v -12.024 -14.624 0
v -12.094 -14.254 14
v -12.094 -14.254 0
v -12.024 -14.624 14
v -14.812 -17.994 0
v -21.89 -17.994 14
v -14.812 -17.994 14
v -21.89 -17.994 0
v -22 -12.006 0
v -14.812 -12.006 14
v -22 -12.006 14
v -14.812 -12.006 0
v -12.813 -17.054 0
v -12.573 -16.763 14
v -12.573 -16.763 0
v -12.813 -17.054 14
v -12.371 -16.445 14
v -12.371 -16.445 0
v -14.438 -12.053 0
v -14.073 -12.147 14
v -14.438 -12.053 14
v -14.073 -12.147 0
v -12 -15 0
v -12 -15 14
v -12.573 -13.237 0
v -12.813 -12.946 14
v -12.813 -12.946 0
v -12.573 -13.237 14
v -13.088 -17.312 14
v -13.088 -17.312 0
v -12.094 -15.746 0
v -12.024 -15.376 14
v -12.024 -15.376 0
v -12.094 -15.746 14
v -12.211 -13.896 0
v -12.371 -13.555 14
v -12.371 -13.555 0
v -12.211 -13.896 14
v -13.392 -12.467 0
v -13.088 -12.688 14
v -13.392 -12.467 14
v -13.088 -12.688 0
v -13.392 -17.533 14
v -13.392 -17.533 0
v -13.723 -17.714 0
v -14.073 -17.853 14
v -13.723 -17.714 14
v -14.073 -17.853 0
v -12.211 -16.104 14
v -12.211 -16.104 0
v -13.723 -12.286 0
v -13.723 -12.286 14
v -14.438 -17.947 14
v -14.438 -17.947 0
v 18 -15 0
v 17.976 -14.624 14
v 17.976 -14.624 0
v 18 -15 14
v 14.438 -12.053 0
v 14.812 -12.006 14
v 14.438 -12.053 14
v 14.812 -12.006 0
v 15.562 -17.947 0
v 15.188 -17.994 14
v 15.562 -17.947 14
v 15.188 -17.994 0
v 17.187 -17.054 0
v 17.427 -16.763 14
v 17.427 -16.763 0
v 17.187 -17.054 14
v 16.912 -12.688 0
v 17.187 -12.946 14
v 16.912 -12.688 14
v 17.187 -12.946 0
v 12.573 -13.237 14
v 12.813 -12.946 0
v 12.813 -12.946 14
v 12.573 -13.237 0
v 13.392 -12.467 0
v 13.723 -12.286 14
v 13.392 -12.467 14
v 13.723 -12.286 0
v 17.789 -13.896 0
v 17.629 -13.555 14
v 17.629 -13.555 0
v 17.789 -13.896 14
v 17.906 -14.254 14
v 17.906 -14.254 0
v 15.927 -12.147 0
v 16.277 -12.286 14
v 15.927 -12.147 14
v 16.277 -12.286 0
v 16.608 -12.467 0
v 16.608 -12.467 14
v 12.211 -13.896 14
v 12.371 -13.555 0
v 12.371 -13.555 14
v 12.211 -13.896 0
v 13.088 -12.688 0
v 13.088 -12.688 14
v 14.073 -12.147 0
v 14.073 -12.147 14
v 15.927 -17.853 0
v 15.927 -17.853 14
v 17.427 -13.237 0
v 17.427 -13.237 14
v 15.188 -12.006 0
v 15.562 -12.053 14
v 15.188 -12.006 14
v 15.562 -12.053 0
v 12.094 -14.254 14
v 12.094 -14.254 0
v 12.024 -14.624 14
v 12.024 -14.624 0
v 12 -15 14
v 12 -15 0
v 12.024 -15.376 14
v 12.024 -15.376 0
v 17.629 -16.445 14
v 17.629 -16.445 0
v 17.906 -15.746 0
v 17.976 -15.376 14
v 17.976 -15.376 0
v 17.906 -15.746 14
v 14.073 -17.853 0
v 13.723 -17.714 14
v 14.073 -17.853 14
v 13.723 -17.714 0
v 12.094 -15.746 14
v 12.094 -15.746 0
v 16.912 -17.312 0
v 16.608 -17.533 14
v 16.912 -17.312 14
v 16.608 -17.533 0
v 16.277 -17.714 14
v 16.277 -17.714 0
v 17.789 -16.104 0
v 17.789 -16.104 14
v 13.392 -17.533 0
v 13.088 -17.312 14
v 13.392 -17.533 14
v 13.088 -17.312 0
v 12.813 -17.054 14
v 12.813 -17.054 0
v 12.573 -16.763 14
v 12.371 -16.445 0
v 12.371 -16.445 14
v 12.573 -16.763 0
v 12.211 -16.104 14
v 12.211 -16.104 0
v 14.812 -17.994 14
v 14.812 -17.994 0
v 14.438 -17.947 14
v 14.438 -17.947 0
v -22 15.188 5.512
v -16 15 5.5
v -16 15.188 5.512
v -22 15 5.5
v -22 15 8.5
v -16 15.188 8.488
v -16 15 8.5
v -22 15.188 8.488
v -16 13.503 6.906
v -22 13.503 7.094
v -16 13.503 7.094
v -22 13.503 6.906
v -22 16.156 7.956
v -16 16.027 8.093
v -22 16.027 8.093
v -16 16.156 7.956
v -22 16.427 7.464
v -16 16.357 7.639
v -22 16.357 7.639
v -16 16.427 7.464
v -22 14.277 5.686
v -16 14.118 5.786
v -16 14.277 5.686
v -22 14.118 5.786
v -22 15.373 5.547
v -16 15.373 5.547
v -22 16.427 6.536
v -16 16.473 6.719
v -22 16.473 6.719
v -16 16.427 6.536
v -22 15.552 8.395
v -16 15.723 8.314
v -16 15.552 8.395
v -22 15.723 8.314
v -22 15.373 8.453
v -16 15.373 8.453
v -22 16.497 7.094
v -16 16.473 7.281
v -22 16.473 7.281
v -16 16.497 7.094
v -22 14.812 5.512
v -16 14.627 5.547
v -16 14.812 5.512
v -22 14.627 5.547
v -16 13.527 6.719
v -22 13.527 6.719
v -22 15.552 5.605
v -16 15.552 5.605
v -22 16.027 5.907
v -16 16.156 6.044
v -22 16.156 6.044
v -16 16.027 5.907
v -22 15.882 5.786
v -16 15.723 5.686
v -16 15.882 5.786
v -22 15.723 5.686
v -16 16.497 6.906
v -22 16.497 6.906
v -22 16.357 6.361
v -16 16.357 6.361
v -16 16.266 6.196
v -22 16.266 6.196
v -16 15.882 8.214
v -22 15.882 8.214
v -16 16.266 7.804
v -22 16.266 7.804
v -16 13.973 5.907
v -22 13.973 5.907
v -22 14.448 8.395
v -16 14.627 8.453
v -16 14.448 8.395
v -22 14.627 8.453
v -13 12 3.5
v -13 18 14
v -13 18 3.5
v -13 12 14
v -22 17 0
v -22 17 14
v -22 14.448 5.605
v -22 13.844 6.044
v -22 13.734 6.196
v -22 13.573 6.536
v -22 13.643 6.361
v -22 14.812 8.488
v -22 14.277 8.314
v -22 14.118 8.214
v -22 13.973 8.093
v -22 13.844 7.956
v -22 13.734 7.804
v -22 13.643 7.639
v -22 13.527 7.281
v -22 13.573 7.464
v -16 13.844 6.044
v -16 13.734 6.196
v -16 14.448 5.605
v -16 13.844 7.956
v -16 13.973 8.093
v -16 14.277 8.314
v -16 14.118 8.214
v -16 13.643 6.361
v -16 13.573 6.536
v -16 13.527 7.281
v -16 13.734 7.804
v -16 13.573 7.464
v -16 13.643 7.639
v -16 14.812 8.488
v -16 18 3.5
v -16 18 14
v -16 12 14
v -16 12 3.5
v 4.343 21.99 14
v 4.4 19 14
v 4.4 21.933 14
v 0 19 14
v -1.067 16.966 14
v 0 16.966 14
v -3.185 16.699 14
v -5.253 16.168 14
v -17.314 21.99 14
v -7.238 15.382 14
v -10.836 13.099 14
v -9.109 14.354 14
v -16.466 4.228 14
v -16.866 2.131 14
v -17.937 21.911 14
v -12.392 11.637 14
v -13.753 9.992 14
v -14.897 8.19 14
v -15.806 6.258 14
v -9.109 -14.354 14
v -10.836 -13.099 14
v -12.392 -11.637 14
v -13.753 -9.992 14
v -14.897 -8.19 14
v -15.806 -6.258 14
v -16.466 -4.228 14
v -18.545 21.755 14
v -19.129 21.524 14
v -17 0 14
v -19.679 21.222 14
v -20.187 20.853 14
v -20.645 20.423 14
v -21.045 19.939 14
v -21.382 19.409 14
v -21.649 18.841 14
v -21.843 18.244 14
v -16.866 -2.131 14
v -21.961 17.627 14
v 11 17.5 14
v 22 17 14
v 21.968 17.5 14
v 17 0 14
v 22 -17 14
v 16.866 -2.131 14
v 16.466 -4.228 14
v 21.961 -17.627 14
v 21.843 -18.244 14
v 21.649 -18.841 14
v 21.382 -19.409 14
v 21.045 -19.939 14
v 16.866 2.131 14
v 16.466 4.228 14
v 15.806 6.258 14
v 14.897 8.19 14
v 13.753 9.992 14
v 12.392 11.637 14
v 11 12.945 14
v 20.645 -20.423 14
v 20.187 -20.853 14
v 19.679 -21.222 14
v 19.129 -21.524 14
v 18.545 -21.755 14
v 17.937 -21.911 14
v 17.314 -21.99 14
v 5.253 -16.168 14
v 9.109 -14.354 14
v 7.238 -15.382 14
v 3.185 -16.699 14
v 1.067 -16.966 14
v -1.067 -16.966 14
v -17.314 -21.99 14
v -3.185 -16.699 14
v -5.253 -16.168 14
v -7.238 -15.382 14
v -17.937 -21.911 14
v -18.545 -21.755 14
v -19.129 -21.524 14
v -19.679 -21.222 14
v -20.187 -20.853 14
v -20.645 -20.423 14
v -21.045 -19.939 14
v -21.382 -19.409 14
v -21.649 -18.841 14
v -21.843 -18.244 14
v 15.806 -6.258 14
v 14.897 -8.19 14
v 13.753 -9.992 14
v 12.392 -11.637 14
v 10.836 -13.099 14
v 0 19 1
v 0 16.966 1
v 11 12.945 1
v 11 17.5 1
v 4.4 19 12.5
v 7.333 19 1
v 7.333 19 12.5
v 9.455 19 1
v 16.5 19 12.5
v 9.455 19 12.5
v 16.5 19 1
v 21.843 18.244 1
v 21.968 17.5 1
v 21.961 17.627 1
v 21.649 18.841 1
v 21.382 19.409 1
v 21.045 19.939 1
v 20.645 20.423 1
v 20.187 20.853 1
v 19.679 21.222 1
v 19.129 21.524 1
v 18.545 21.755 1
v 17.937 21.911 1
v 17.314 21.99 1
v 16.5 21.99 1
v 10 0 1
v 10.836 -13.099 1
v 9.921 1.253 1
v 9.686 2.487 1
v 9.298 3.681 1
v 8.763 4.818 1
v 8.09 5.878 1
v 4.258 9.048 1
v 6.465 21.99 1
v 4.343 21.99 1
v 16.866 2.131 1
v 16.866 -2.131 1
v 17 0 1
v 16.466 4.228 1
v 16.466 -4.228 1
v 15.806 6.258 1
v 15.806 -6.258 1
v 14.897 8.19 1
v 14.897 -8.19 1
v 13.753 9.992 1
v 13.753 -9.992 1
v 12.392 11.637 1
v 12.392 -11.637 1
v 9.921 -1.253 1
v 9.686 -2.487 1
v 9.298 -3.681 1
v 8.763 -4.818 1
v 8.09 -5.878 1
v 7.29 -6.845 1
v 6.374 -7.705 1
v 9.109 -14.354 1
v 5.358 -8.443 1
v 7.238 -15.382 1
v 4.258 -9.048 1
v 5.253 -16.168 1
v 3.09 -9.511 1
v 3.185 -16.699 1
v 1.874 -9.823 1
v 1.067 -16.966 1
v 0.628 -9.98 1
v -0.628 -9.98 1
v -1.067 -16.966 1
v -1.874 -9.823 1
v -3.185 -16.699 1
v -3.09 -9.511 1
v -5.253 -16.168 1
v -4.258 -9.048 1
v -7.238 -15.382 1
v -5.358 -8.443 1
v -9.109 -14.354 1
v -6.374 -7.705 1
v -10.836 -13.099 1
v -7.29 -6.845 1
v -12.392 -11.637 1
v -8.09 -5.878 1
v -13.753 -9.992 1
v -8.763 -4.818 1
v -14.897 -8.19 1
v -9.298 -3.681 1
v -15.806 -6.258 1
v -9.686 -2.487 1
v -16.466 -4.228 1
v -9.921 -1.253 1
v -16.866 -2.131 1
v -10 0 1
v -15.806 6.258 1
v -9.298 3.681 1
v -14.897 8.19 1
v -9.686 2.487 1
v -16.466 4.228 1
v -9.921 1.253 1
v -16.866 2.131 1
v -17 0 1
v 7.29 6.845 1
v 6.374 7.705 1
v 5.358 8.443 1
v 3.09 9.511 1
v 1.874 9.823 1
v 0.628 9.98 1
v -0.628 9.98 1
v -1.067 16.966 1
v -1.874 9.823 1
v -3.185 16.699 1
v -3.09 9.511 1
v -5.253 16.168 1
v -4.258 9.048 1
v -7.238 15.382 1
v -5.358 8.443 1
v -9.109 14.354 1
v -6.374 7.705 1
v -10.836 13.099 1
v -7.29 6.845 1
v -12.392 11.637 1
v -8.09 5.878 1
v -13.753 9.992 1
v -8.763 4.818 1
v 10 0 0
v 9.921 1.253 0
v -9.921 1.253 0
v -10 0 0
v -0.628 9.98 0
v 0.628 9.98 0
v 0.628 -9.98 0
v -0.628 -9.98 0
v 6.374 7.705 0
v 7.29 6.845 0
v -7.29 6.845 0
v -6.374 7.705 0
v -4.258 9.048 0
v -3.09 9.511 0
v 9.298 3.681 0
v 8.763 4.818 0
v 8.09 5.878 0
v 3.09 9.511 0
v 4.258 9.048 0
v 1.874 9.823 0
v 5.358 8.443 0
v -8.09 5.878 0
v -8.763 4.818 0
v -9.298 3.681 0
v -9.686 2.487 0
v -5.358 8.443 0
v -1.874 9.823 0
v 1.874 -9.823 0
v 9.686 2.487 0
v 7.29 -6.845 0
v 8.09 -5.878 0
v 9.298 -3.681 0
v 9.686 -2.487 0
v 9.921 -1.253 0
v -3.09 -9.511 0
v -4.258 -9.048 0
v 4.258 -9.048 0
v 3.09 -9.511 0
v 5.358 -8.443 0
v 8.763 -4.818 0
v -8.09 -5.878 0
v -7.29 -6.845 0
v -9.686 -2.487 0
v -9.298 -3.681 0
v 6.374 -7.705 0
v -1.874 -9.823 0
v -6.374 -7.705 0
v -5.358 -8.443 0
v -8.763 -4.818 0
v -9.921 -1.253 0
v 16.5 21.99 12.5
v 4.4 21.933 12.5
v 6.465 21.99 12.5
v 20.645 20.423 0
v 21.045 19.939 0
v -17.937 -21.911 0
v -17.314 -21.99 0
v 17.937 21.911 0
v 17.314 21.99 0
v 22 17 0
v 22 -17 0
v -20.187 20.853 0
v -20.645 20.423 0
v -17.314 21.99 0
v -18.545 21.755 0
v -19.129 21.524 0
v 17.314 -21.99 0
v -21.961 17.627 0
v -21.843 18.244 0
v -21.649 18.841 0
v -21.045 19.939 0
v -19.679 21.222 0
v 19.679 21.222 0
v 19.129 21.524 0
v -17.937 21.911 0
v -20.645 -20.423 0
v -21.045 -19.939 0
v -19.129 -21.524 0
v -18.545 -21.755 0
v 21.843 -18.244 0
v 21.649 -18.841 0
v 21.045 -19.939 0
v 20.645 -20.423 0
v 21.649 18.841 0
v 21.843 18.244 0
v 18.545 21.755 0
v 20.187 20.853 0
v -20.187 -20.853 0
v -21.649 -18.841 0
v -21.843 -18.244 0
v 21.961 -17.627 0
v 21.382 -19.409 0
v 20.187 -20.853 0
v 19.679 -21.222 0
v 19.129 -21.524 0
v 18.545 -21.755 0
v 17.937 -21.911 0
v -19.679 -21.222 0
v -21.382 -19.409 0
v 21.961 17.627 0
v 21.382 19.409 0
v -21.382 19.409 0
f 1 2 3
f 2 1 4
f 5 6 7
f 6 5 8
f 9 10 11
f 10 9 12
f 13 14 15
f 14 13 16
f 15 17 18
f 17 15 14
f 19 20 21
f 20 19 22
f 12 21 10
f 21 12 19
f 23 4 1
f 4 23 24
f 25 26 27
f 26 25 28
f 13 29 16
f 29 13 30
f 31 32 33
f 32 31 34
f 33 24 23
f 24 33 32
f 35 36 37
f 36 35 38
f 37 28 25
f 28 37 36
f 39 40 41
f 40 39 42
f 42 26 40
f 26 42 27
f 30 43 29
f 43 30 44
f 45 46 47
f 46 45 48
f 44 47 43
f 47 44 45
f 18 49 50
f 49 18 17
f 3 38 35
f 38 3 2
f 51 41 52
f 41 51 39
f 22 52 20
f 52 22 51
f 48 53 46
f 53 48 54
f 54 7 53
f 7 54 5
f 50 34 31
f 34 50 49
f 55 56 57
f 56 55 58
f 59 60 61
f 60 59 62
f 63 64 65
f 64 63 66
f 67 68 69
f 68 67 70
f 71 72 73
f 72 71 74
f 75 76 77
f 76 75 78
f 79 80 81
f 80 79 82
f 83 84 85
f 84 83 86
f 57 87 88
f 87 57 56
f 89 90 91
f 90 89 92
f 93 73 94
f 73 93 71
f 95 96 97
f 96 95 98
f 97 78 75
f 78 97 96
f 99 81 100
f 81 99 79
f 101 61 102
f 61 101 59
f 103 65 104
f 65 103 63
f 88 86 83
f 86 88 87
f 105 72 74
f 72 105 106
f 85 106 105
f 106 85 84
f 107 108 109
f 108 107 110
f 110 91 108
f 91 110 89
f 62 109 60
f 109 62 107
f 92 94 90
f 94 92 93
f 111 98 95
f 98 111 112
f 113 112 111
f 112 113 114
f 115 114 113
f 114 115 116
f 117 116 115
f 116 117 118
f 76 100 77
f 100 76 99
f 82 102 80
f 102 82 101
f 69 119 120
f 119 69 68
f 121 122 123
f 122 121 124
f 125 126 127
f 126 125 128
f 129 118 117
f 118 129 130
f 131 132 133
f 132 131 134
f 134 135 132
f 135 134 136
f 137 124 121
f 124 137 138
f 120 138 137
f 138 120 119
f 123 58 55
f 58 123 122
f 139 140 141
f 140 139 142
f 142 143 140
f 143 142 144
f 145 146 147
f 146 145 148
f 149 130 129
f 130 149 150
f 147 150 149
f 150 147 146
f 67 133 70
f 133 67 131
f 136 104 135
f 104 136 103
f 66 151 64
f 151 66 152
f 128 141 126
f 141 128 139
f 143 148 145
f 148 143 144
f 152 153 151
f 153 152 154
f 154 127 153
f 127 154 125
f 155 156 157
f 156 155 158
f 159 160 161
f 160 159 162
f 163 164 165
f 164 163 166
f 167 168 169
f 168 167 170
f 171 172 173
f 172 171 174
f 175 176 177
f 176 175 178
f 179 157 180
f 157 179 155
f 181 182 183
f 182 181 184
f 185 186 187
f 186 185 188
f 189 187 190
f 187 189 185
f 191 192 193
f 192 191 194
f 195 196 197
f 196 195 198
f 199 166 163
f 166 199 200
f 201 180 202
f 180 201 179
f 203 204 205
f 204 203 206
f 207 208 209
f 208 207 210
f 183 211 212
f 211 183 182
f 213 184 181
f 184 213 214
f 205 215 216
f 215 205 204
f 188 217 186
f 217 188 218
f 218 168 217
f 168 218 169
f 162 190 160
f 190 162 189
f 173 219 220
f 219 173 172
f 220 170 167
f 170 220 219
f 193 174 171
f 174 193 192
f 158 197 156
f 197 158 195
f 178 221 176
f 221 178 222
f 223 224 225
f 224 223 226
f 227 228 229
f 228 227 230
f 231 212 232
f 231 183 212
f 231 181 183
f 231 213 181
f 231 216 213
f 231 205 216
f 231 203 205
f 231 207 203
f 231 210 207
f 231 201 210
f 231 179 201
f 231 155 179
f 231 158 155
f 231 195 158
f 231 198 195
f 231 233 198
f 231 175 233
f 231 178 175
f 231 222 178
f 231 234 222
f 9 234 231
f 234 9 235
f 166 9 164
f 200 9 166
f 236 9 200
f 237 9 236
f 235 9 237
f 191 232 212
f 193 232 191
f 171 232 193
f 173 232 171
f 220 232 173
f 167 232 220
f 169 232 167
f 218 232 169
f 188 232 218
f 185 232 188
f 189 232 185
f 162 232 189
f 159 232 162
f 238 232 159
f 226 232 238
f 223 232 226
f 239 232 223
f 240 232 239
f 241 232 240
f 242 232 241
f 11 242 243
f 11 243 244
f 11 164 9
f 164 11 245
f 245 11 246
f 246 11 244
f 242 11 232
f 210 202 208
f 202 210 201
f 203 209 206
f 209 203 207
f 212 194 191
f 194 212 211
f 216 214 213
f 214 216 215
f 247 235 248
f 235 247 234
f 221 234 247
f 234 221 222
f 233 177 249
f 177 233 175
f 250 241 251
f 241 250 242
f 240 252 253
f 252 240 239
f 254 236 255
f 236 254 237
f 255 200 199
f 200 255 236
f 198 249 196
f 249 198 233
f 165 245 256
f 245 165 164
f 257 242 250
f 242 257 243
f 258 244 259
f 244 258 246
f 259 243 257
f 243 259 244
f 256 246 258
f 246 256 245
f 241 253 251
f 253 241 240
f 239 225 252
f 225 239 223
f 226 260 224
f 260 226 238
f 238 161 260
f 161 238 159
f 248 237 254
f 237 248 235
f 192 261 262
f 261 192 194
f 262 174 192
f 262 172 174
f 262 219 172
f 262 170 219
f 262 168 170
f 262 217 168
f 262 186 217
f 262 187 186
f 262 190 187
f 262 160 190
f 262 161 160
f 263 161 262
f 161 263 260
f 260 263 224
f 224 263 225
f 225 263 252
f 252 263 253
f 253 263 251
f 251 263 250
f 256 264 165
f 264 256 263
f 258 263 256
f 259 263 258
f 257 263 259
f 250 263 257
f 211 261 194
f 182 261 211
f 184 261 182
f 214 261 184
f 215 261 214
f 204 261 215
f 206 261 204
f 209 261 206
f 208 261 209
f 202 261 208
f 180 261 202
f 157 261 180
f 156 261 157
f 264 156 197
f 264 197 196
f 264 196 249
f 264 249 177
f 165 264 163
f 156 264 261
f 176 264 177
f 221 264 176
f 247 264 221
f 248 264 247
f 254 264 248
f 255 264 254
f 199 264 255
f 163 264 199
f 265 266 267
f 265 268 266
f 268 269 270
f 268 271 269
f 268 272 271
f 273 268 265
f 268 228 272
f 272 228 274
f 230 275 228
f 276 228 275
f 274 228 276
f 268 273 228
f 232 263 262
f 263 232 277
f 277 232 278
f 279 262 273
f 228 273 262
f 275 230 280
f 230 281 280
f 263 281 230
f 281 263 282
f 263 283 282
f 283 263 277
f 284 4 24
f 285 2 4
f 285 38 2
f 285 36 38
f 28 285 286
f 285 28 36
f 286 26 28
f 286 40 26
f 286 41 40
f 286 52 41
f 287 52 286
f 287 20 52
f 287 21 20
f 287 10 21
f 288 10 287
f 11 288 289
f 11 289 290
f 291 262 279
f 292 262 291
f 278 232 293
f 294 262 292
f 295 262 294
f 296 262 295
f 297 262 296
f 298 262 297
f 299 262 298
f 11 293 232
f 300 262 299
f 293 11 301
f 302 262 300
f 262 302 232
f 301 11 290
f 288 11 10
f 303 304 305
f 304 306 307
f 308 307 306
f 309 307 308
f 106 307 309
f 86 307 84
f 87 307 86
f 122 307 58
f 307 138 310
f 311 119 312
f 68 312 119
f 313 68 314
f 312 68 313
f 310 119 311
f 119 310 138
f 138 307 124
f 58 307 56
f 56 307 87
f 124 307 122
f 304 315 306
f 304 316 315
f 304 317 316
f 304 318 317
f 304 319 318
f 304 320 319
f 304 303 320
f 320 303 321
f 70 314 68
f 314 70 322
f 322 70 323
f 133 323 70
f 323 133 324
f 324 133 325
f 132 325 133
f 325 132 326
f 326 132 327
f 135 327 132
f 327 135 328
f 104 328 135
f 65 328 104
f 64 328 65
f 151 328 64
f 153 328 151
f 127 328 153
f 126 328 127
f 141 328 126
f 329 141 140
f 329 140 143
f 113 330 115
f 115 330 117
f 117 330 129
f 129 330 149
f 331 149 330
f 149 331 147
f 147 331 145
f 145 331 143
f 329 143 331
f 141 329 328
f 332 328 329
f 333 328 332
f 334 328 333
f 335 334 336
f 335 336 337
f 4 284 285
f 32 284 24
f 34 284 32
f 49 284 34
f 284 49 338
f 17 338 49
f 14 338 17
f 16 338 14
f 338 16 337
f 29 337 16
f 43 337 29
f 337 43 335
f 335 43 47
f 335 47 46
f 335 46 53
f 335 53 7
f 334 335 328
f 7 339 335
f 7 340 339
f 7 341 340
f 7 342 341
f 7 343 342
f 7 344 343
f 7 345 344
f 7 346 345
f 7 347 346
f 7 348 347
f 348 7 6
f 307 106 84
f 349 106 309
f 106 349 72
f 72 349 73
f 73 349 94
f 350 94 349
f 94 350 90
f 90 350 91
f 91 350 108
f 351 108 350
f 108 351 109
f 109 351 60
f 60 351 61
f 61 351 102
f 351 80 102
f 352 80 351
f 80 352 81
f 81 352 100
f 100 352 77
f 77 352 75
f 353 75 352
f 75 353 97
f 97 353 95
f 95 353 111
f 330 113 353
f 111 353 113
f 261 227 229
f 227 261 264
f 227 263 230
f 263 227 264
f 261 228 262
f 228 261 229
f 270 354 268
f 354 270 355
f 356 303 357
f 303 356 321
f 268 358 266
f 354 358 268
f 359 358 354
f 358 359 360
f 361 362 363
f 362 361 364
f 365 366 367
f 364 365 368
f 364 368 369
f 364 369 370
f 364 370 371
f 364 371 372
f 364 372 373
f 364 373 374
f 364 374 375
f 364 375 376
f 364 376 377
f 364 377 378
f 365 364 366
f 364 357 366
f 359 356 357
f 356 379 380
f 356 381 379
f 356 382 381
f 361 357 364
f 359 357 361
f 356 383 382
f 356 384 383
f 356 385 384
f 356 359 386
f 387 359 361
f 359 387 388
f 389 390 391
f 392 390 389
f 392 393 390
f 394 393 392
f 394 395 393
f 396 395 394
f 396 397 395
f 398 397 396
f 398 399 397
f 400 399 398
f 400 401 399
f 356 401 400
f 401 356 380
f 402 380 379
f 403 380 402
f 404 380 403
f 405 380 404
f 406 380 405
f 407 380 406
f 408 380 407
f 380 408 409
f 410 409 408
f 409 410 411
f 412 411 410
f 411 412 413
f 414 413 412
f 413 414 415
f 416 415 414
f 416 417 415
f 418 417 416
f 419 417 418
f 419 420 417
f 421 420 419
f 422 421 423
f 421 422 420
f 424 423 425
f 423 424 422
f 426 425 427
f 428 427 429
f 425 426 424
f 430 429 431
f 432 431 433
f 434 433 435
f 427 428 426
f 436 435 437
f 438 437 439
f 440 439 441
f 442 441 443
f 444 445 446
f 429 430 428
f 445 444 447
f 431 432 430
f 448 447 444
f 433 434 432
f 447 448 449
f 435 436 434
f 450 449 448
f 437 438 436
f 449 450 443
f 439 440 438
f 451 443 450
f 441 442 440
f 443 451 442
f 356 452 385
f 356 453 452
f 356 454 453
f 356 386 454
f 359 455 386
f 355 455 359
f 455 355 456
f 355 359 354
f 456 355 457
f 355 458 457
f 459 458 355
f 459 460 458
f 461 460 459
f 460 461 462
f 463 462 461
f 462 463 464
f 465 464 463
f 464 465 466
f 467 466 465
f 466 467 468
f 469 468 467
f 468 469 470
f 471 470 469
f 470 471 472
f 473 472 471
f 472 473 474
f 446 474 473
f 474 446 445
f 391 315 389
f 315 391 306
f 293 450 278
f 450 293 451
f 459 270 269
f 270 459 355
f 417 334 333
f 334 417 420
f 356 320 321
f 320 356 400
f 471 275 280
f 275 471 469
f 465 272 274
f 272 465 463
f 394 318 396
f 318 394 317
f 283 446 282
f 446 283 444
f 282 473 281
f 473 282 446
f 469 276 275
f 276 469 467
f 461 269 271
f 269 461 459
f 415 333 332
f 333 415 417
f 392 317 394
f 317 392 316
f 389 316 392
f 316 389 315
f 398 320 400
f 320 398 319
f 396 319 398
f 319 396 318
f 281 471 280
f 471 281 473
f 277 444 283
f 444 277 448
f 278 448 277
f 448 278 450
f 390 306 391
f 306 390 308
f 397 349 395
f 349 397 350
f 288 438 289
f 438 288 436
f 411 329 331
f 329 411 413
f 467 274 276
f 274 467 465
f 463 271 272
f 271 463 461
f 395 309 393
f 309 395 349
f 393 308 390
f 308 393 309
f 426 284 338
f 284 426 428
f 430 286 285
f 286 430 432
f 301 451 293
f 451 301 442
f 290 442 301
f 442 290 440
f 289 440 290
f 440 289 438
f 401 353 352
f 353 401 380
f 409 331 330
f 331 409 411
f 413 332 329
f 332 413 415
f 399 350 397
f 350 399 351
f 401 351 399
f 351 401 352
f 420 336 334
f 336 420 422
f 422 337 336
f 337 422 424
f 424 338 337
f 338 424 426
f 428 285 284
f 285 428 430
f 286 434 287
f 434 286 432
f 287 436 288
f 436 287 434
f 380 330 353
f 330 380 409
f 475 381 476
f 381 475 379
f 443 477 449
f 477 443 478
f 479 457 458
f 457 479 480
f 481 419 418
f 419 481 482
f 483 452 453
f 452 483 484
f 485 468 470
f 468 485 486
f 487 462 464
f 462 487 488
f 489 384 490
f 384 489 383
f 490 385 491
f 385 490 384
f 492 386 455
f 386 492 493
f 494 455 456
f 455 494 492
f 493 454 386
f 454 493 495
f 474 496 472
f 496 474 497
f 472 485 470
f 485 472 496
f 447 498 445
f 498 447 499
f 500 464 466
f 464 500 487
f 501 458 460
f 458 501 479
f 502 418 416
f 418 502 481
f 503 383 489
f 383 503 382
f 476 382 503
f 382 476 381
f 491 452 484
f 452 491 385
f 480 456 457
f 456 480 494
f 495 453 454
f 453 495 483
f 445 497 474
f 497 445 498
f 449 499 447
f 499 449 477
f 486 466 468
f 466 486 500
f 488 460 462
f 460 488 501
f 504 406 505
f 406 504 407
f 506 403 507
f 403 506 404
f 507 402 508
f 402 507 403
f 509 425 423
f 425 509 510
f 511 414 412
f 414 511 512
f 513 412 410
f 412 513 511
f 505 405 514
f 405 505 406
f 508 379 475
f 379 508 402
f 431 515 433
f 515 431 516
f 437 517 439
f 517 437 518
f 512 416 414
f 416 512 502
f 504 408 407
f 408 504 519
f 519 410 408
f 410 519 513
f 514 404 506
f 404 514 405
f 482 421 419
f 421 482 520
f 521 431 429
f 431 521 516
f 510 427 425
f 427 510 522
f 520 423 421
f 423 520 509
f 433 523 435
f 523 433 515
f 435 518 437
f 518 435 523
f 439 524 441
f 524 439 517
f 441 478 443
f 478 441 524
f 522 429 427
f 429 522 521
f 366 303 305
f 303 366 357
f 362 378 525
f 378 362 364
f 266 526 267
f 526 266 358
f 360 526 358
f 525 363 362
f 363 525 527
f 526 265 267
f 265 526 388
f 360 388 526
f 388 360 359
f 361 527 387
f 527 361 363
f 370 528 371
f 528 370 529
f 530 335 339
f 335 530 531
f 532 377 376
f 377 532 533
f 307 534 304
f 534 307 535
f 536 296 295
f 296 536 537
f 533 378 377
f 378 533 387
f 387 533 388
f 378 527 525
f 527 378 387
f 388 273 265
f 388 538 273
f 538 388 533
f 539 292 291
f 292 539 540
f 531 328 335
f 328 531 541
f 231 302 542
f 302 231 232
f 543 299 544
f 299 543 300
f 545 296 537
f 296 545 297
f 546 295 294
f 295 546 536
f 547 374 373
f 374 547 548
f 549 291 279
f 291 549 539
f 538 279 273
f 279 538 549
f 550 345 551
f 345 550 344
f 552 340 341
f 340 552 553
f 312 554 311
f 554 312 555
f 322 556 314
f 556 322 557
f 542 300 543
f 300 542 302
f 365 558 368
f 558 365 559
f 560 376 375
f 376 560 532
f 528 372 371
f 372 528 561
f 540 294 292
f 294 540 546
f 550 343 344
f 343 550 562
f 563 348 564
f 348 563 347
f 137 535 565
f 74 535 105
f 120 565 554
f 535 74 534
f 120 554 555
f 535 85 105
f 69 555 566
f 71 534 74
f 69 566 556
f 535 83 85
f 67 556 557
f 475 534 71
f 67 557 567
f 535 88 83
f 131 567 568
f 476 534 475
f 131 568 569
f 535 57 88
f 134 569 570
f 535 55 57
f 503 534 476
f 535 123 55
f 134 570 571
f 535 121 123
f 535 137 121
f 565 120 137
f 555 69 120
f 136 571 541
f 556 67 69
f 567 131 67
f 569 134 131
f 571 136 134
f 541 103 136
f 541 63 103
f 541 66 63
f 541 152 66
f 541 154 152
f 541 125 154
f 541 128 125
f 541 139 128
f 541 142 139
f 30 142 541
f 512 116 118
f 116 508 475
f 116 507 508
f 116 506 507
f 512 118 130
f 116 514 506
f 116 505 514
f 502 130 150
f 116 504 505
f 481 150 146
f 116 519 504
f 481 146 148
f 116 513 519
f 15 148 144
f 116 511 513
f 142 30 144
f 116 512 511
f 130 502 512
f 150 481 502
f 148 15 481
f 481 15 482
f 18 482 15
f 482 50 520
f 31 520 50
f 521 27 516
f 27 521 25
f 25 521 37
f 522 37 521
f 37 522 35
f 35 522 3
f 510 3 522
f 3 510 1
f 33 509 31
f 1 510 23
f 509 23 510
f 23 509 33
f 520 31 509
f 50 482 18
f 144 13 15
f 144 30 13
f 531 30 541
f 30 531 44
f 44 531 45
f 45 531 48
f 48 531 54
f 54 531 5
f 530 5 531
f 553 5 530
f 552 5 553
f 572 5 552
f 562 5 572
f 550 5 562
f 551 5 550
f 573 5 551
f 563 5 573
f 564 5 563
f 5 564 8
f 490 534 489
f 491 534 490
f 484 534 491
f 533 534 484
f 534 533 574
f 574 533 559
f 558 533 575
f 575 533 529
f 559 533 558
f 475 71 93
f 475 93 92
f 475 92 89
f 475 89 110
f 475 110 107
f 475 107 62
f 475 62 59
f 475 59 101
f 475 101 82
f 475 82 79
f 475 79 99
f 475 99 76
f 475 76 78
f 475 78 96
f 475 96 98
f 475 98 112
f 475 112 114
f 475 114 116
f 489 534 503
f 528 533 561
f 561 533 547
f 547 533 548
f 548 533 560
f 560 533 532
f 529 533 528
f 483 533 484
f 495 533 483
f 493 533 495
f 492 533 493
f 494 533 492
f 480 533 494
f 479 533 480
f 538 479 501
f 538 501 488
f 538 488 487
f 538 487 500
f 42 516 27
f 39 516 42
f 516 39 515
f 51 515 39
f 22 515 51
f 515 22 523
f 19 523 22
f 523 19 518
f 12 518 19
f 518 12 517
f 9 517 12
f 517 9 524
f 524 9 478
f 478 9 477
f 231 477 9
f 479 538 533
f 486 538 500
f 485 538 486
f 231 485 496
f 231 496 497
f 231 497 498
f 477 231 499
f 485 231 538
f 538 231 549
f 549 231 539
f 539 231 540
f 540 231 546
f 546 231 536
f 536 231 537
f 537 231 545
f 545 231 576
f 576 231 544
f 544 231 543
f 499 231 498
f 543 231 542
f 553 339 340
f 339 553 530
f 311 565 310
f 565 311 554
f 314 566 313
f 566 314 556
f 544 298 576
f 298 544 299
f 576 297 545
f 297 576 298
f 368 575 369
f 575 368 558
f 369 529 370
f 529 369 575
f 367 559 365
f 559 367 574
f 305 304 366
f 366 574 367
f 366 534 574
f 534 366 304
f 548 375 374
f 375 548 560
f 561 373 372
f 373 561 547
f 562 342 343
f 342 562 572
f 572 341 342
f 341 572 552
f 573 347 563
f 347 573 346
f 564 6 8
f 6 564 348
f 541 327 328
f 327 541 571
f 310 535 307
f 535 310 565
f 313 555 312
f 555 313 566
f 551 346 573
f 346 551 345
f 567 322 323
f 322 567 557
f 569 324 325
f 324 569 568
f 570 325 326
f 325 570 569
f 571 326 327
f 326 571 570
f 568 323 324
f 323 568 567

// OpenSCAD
$fn = 50;


difference() {
	union() {
		translate(v = [0, 0, 0]) {
			rotate(a = [0, 0, 0]) {
				hull() {
					translate(v = [-17.0000000000, 17.0000000000, 0]) {
						rotate(a = [0, 0, 0]) {
							translate(v = [0, 0, 0]) {
								rotate(a = [0, 0, 0]) {
									cylinder(h = 14, r = 5);
								}
							}
						}
					}
					translate(v = [17.0000000000, 17.0000000000, 0]) {
						rotate(a = [0, 0, 0]) {
							translate(v = [0, 0, 0]) {
								rotate(a = [0, 0, 0]) {
									cylinder(h = 14, r = 5);
								}
							}
						}
					}
					translate(v = [-17.0000000000, -17.0000000000, 0]) {
						rotate(a = [0, 0, 0]) {
							translate(v = [0, 0, 0]) {
								rotate(a = [0, 0, 0]) {
									cylinder(h = 14, r = 5);
								}
							}
						}
					}
					translate(v = [17.0000000000, -17.0000000000, 0]) {
						rotate(a = [0, 0, 0]) {
							translate(v = [0, 0, 0]) {
								rotate(a = [0, 0, 0]) {
									cylinder(h = 14, r = 5);
								}
							}
						}
					}
				}
			}
		}
	}
	union() {
		translate(v = [-22.5000000000, -15.0000000000, -125]) {
			rotate(a = [0, 0, 0]) {
				hull() {
					translate(v = [7.5000000000, 0, 0]) {
						rotate(a = [0, 0, 0]) {
							translate(v = [0, 0, 0]) {
								rotate(a = [0, 0, 0]) {
									cylinder(h = 250, r = 3.0000000000);
								}
							}
						}
					}
					translate(v = [-7.5000000000, 0, 0]) {
						rotate(a = [0, 0, 0]) {
							translate(v = [0, 0, 0]) {
								rotate(a = [0, 0, 0]) {
									cylinder(h = 250, r = 3.0000000000);
								}
							}
						}
					}
				}
			}
		}
		translate(v = [15.0000000000, -15.0000000000, -125.0000000000]) {
			rotate(a = [0, 0, 0]) {
				cylinder(h = 250, r = 3.0000000000);
			}
		}
		translate(v = [-22.0000000000, 15.0000000000, 7.0000000000]) {
			rotate(a = [0, 90, 0]) {
				cylinder(h = 9, r = 1.5000000000);
			}
		}
		translate(v = [-16.0000000000, 12.0000000000, 3.5000000000]) {
			rotate(a = [0, 0, 0]) {
				cube(size = [3, 6, 10.5000000000]);
			}
		}
		translate(v = [0.0000000000, 11.0000000000, 1.0000000000]) {
			rotate(a = [0, 0, 0]) {
				cube(size = [11, 8, 16]);
			}
		}
		translate(v = [0, 0, 1.0000000000]) {
			rotate(a = [0, 0, 0]) {
				cylinder(h = 16, r = 17.0000000000);
			}
		}
		translate(v = [0, 0, -7.0000000000]) {
			rotate(a = [0, 0, 0]) {
				cylinder(h = 14, r = 10.0000000000);
			}
		}
		translate(v = [0.0000000000, 17.5000000000, 1]) {
			rotate(a = [0, 0, 0]) {
				cube(size = [22.0000000000, 1.5000000000, 16]);
			}
		}
		translate(v = [16.5000000000, 17.5000000000, 1]) {
			rotate(a = [0, 0, 0]) {
				cube(size = [5.5000000000, 4.5000000000, 16]);
			}
		}
		translate(v = [4.4000000000, 17.5000000000, 12.5000000000]) {
			rotate(a = [0, 0, 0]) {
				cube(size = [17.6000000000, 4.5000000000, 1.5000000000]);
			}
		}
		translate(v = [3.5833333333, 22.7500000000, 1]) {
			rotate(a = [0, 0, -45]) {
				cube(size = [7.5000000000, 1.5000000000, 16]);
			}
		}
	}
}
